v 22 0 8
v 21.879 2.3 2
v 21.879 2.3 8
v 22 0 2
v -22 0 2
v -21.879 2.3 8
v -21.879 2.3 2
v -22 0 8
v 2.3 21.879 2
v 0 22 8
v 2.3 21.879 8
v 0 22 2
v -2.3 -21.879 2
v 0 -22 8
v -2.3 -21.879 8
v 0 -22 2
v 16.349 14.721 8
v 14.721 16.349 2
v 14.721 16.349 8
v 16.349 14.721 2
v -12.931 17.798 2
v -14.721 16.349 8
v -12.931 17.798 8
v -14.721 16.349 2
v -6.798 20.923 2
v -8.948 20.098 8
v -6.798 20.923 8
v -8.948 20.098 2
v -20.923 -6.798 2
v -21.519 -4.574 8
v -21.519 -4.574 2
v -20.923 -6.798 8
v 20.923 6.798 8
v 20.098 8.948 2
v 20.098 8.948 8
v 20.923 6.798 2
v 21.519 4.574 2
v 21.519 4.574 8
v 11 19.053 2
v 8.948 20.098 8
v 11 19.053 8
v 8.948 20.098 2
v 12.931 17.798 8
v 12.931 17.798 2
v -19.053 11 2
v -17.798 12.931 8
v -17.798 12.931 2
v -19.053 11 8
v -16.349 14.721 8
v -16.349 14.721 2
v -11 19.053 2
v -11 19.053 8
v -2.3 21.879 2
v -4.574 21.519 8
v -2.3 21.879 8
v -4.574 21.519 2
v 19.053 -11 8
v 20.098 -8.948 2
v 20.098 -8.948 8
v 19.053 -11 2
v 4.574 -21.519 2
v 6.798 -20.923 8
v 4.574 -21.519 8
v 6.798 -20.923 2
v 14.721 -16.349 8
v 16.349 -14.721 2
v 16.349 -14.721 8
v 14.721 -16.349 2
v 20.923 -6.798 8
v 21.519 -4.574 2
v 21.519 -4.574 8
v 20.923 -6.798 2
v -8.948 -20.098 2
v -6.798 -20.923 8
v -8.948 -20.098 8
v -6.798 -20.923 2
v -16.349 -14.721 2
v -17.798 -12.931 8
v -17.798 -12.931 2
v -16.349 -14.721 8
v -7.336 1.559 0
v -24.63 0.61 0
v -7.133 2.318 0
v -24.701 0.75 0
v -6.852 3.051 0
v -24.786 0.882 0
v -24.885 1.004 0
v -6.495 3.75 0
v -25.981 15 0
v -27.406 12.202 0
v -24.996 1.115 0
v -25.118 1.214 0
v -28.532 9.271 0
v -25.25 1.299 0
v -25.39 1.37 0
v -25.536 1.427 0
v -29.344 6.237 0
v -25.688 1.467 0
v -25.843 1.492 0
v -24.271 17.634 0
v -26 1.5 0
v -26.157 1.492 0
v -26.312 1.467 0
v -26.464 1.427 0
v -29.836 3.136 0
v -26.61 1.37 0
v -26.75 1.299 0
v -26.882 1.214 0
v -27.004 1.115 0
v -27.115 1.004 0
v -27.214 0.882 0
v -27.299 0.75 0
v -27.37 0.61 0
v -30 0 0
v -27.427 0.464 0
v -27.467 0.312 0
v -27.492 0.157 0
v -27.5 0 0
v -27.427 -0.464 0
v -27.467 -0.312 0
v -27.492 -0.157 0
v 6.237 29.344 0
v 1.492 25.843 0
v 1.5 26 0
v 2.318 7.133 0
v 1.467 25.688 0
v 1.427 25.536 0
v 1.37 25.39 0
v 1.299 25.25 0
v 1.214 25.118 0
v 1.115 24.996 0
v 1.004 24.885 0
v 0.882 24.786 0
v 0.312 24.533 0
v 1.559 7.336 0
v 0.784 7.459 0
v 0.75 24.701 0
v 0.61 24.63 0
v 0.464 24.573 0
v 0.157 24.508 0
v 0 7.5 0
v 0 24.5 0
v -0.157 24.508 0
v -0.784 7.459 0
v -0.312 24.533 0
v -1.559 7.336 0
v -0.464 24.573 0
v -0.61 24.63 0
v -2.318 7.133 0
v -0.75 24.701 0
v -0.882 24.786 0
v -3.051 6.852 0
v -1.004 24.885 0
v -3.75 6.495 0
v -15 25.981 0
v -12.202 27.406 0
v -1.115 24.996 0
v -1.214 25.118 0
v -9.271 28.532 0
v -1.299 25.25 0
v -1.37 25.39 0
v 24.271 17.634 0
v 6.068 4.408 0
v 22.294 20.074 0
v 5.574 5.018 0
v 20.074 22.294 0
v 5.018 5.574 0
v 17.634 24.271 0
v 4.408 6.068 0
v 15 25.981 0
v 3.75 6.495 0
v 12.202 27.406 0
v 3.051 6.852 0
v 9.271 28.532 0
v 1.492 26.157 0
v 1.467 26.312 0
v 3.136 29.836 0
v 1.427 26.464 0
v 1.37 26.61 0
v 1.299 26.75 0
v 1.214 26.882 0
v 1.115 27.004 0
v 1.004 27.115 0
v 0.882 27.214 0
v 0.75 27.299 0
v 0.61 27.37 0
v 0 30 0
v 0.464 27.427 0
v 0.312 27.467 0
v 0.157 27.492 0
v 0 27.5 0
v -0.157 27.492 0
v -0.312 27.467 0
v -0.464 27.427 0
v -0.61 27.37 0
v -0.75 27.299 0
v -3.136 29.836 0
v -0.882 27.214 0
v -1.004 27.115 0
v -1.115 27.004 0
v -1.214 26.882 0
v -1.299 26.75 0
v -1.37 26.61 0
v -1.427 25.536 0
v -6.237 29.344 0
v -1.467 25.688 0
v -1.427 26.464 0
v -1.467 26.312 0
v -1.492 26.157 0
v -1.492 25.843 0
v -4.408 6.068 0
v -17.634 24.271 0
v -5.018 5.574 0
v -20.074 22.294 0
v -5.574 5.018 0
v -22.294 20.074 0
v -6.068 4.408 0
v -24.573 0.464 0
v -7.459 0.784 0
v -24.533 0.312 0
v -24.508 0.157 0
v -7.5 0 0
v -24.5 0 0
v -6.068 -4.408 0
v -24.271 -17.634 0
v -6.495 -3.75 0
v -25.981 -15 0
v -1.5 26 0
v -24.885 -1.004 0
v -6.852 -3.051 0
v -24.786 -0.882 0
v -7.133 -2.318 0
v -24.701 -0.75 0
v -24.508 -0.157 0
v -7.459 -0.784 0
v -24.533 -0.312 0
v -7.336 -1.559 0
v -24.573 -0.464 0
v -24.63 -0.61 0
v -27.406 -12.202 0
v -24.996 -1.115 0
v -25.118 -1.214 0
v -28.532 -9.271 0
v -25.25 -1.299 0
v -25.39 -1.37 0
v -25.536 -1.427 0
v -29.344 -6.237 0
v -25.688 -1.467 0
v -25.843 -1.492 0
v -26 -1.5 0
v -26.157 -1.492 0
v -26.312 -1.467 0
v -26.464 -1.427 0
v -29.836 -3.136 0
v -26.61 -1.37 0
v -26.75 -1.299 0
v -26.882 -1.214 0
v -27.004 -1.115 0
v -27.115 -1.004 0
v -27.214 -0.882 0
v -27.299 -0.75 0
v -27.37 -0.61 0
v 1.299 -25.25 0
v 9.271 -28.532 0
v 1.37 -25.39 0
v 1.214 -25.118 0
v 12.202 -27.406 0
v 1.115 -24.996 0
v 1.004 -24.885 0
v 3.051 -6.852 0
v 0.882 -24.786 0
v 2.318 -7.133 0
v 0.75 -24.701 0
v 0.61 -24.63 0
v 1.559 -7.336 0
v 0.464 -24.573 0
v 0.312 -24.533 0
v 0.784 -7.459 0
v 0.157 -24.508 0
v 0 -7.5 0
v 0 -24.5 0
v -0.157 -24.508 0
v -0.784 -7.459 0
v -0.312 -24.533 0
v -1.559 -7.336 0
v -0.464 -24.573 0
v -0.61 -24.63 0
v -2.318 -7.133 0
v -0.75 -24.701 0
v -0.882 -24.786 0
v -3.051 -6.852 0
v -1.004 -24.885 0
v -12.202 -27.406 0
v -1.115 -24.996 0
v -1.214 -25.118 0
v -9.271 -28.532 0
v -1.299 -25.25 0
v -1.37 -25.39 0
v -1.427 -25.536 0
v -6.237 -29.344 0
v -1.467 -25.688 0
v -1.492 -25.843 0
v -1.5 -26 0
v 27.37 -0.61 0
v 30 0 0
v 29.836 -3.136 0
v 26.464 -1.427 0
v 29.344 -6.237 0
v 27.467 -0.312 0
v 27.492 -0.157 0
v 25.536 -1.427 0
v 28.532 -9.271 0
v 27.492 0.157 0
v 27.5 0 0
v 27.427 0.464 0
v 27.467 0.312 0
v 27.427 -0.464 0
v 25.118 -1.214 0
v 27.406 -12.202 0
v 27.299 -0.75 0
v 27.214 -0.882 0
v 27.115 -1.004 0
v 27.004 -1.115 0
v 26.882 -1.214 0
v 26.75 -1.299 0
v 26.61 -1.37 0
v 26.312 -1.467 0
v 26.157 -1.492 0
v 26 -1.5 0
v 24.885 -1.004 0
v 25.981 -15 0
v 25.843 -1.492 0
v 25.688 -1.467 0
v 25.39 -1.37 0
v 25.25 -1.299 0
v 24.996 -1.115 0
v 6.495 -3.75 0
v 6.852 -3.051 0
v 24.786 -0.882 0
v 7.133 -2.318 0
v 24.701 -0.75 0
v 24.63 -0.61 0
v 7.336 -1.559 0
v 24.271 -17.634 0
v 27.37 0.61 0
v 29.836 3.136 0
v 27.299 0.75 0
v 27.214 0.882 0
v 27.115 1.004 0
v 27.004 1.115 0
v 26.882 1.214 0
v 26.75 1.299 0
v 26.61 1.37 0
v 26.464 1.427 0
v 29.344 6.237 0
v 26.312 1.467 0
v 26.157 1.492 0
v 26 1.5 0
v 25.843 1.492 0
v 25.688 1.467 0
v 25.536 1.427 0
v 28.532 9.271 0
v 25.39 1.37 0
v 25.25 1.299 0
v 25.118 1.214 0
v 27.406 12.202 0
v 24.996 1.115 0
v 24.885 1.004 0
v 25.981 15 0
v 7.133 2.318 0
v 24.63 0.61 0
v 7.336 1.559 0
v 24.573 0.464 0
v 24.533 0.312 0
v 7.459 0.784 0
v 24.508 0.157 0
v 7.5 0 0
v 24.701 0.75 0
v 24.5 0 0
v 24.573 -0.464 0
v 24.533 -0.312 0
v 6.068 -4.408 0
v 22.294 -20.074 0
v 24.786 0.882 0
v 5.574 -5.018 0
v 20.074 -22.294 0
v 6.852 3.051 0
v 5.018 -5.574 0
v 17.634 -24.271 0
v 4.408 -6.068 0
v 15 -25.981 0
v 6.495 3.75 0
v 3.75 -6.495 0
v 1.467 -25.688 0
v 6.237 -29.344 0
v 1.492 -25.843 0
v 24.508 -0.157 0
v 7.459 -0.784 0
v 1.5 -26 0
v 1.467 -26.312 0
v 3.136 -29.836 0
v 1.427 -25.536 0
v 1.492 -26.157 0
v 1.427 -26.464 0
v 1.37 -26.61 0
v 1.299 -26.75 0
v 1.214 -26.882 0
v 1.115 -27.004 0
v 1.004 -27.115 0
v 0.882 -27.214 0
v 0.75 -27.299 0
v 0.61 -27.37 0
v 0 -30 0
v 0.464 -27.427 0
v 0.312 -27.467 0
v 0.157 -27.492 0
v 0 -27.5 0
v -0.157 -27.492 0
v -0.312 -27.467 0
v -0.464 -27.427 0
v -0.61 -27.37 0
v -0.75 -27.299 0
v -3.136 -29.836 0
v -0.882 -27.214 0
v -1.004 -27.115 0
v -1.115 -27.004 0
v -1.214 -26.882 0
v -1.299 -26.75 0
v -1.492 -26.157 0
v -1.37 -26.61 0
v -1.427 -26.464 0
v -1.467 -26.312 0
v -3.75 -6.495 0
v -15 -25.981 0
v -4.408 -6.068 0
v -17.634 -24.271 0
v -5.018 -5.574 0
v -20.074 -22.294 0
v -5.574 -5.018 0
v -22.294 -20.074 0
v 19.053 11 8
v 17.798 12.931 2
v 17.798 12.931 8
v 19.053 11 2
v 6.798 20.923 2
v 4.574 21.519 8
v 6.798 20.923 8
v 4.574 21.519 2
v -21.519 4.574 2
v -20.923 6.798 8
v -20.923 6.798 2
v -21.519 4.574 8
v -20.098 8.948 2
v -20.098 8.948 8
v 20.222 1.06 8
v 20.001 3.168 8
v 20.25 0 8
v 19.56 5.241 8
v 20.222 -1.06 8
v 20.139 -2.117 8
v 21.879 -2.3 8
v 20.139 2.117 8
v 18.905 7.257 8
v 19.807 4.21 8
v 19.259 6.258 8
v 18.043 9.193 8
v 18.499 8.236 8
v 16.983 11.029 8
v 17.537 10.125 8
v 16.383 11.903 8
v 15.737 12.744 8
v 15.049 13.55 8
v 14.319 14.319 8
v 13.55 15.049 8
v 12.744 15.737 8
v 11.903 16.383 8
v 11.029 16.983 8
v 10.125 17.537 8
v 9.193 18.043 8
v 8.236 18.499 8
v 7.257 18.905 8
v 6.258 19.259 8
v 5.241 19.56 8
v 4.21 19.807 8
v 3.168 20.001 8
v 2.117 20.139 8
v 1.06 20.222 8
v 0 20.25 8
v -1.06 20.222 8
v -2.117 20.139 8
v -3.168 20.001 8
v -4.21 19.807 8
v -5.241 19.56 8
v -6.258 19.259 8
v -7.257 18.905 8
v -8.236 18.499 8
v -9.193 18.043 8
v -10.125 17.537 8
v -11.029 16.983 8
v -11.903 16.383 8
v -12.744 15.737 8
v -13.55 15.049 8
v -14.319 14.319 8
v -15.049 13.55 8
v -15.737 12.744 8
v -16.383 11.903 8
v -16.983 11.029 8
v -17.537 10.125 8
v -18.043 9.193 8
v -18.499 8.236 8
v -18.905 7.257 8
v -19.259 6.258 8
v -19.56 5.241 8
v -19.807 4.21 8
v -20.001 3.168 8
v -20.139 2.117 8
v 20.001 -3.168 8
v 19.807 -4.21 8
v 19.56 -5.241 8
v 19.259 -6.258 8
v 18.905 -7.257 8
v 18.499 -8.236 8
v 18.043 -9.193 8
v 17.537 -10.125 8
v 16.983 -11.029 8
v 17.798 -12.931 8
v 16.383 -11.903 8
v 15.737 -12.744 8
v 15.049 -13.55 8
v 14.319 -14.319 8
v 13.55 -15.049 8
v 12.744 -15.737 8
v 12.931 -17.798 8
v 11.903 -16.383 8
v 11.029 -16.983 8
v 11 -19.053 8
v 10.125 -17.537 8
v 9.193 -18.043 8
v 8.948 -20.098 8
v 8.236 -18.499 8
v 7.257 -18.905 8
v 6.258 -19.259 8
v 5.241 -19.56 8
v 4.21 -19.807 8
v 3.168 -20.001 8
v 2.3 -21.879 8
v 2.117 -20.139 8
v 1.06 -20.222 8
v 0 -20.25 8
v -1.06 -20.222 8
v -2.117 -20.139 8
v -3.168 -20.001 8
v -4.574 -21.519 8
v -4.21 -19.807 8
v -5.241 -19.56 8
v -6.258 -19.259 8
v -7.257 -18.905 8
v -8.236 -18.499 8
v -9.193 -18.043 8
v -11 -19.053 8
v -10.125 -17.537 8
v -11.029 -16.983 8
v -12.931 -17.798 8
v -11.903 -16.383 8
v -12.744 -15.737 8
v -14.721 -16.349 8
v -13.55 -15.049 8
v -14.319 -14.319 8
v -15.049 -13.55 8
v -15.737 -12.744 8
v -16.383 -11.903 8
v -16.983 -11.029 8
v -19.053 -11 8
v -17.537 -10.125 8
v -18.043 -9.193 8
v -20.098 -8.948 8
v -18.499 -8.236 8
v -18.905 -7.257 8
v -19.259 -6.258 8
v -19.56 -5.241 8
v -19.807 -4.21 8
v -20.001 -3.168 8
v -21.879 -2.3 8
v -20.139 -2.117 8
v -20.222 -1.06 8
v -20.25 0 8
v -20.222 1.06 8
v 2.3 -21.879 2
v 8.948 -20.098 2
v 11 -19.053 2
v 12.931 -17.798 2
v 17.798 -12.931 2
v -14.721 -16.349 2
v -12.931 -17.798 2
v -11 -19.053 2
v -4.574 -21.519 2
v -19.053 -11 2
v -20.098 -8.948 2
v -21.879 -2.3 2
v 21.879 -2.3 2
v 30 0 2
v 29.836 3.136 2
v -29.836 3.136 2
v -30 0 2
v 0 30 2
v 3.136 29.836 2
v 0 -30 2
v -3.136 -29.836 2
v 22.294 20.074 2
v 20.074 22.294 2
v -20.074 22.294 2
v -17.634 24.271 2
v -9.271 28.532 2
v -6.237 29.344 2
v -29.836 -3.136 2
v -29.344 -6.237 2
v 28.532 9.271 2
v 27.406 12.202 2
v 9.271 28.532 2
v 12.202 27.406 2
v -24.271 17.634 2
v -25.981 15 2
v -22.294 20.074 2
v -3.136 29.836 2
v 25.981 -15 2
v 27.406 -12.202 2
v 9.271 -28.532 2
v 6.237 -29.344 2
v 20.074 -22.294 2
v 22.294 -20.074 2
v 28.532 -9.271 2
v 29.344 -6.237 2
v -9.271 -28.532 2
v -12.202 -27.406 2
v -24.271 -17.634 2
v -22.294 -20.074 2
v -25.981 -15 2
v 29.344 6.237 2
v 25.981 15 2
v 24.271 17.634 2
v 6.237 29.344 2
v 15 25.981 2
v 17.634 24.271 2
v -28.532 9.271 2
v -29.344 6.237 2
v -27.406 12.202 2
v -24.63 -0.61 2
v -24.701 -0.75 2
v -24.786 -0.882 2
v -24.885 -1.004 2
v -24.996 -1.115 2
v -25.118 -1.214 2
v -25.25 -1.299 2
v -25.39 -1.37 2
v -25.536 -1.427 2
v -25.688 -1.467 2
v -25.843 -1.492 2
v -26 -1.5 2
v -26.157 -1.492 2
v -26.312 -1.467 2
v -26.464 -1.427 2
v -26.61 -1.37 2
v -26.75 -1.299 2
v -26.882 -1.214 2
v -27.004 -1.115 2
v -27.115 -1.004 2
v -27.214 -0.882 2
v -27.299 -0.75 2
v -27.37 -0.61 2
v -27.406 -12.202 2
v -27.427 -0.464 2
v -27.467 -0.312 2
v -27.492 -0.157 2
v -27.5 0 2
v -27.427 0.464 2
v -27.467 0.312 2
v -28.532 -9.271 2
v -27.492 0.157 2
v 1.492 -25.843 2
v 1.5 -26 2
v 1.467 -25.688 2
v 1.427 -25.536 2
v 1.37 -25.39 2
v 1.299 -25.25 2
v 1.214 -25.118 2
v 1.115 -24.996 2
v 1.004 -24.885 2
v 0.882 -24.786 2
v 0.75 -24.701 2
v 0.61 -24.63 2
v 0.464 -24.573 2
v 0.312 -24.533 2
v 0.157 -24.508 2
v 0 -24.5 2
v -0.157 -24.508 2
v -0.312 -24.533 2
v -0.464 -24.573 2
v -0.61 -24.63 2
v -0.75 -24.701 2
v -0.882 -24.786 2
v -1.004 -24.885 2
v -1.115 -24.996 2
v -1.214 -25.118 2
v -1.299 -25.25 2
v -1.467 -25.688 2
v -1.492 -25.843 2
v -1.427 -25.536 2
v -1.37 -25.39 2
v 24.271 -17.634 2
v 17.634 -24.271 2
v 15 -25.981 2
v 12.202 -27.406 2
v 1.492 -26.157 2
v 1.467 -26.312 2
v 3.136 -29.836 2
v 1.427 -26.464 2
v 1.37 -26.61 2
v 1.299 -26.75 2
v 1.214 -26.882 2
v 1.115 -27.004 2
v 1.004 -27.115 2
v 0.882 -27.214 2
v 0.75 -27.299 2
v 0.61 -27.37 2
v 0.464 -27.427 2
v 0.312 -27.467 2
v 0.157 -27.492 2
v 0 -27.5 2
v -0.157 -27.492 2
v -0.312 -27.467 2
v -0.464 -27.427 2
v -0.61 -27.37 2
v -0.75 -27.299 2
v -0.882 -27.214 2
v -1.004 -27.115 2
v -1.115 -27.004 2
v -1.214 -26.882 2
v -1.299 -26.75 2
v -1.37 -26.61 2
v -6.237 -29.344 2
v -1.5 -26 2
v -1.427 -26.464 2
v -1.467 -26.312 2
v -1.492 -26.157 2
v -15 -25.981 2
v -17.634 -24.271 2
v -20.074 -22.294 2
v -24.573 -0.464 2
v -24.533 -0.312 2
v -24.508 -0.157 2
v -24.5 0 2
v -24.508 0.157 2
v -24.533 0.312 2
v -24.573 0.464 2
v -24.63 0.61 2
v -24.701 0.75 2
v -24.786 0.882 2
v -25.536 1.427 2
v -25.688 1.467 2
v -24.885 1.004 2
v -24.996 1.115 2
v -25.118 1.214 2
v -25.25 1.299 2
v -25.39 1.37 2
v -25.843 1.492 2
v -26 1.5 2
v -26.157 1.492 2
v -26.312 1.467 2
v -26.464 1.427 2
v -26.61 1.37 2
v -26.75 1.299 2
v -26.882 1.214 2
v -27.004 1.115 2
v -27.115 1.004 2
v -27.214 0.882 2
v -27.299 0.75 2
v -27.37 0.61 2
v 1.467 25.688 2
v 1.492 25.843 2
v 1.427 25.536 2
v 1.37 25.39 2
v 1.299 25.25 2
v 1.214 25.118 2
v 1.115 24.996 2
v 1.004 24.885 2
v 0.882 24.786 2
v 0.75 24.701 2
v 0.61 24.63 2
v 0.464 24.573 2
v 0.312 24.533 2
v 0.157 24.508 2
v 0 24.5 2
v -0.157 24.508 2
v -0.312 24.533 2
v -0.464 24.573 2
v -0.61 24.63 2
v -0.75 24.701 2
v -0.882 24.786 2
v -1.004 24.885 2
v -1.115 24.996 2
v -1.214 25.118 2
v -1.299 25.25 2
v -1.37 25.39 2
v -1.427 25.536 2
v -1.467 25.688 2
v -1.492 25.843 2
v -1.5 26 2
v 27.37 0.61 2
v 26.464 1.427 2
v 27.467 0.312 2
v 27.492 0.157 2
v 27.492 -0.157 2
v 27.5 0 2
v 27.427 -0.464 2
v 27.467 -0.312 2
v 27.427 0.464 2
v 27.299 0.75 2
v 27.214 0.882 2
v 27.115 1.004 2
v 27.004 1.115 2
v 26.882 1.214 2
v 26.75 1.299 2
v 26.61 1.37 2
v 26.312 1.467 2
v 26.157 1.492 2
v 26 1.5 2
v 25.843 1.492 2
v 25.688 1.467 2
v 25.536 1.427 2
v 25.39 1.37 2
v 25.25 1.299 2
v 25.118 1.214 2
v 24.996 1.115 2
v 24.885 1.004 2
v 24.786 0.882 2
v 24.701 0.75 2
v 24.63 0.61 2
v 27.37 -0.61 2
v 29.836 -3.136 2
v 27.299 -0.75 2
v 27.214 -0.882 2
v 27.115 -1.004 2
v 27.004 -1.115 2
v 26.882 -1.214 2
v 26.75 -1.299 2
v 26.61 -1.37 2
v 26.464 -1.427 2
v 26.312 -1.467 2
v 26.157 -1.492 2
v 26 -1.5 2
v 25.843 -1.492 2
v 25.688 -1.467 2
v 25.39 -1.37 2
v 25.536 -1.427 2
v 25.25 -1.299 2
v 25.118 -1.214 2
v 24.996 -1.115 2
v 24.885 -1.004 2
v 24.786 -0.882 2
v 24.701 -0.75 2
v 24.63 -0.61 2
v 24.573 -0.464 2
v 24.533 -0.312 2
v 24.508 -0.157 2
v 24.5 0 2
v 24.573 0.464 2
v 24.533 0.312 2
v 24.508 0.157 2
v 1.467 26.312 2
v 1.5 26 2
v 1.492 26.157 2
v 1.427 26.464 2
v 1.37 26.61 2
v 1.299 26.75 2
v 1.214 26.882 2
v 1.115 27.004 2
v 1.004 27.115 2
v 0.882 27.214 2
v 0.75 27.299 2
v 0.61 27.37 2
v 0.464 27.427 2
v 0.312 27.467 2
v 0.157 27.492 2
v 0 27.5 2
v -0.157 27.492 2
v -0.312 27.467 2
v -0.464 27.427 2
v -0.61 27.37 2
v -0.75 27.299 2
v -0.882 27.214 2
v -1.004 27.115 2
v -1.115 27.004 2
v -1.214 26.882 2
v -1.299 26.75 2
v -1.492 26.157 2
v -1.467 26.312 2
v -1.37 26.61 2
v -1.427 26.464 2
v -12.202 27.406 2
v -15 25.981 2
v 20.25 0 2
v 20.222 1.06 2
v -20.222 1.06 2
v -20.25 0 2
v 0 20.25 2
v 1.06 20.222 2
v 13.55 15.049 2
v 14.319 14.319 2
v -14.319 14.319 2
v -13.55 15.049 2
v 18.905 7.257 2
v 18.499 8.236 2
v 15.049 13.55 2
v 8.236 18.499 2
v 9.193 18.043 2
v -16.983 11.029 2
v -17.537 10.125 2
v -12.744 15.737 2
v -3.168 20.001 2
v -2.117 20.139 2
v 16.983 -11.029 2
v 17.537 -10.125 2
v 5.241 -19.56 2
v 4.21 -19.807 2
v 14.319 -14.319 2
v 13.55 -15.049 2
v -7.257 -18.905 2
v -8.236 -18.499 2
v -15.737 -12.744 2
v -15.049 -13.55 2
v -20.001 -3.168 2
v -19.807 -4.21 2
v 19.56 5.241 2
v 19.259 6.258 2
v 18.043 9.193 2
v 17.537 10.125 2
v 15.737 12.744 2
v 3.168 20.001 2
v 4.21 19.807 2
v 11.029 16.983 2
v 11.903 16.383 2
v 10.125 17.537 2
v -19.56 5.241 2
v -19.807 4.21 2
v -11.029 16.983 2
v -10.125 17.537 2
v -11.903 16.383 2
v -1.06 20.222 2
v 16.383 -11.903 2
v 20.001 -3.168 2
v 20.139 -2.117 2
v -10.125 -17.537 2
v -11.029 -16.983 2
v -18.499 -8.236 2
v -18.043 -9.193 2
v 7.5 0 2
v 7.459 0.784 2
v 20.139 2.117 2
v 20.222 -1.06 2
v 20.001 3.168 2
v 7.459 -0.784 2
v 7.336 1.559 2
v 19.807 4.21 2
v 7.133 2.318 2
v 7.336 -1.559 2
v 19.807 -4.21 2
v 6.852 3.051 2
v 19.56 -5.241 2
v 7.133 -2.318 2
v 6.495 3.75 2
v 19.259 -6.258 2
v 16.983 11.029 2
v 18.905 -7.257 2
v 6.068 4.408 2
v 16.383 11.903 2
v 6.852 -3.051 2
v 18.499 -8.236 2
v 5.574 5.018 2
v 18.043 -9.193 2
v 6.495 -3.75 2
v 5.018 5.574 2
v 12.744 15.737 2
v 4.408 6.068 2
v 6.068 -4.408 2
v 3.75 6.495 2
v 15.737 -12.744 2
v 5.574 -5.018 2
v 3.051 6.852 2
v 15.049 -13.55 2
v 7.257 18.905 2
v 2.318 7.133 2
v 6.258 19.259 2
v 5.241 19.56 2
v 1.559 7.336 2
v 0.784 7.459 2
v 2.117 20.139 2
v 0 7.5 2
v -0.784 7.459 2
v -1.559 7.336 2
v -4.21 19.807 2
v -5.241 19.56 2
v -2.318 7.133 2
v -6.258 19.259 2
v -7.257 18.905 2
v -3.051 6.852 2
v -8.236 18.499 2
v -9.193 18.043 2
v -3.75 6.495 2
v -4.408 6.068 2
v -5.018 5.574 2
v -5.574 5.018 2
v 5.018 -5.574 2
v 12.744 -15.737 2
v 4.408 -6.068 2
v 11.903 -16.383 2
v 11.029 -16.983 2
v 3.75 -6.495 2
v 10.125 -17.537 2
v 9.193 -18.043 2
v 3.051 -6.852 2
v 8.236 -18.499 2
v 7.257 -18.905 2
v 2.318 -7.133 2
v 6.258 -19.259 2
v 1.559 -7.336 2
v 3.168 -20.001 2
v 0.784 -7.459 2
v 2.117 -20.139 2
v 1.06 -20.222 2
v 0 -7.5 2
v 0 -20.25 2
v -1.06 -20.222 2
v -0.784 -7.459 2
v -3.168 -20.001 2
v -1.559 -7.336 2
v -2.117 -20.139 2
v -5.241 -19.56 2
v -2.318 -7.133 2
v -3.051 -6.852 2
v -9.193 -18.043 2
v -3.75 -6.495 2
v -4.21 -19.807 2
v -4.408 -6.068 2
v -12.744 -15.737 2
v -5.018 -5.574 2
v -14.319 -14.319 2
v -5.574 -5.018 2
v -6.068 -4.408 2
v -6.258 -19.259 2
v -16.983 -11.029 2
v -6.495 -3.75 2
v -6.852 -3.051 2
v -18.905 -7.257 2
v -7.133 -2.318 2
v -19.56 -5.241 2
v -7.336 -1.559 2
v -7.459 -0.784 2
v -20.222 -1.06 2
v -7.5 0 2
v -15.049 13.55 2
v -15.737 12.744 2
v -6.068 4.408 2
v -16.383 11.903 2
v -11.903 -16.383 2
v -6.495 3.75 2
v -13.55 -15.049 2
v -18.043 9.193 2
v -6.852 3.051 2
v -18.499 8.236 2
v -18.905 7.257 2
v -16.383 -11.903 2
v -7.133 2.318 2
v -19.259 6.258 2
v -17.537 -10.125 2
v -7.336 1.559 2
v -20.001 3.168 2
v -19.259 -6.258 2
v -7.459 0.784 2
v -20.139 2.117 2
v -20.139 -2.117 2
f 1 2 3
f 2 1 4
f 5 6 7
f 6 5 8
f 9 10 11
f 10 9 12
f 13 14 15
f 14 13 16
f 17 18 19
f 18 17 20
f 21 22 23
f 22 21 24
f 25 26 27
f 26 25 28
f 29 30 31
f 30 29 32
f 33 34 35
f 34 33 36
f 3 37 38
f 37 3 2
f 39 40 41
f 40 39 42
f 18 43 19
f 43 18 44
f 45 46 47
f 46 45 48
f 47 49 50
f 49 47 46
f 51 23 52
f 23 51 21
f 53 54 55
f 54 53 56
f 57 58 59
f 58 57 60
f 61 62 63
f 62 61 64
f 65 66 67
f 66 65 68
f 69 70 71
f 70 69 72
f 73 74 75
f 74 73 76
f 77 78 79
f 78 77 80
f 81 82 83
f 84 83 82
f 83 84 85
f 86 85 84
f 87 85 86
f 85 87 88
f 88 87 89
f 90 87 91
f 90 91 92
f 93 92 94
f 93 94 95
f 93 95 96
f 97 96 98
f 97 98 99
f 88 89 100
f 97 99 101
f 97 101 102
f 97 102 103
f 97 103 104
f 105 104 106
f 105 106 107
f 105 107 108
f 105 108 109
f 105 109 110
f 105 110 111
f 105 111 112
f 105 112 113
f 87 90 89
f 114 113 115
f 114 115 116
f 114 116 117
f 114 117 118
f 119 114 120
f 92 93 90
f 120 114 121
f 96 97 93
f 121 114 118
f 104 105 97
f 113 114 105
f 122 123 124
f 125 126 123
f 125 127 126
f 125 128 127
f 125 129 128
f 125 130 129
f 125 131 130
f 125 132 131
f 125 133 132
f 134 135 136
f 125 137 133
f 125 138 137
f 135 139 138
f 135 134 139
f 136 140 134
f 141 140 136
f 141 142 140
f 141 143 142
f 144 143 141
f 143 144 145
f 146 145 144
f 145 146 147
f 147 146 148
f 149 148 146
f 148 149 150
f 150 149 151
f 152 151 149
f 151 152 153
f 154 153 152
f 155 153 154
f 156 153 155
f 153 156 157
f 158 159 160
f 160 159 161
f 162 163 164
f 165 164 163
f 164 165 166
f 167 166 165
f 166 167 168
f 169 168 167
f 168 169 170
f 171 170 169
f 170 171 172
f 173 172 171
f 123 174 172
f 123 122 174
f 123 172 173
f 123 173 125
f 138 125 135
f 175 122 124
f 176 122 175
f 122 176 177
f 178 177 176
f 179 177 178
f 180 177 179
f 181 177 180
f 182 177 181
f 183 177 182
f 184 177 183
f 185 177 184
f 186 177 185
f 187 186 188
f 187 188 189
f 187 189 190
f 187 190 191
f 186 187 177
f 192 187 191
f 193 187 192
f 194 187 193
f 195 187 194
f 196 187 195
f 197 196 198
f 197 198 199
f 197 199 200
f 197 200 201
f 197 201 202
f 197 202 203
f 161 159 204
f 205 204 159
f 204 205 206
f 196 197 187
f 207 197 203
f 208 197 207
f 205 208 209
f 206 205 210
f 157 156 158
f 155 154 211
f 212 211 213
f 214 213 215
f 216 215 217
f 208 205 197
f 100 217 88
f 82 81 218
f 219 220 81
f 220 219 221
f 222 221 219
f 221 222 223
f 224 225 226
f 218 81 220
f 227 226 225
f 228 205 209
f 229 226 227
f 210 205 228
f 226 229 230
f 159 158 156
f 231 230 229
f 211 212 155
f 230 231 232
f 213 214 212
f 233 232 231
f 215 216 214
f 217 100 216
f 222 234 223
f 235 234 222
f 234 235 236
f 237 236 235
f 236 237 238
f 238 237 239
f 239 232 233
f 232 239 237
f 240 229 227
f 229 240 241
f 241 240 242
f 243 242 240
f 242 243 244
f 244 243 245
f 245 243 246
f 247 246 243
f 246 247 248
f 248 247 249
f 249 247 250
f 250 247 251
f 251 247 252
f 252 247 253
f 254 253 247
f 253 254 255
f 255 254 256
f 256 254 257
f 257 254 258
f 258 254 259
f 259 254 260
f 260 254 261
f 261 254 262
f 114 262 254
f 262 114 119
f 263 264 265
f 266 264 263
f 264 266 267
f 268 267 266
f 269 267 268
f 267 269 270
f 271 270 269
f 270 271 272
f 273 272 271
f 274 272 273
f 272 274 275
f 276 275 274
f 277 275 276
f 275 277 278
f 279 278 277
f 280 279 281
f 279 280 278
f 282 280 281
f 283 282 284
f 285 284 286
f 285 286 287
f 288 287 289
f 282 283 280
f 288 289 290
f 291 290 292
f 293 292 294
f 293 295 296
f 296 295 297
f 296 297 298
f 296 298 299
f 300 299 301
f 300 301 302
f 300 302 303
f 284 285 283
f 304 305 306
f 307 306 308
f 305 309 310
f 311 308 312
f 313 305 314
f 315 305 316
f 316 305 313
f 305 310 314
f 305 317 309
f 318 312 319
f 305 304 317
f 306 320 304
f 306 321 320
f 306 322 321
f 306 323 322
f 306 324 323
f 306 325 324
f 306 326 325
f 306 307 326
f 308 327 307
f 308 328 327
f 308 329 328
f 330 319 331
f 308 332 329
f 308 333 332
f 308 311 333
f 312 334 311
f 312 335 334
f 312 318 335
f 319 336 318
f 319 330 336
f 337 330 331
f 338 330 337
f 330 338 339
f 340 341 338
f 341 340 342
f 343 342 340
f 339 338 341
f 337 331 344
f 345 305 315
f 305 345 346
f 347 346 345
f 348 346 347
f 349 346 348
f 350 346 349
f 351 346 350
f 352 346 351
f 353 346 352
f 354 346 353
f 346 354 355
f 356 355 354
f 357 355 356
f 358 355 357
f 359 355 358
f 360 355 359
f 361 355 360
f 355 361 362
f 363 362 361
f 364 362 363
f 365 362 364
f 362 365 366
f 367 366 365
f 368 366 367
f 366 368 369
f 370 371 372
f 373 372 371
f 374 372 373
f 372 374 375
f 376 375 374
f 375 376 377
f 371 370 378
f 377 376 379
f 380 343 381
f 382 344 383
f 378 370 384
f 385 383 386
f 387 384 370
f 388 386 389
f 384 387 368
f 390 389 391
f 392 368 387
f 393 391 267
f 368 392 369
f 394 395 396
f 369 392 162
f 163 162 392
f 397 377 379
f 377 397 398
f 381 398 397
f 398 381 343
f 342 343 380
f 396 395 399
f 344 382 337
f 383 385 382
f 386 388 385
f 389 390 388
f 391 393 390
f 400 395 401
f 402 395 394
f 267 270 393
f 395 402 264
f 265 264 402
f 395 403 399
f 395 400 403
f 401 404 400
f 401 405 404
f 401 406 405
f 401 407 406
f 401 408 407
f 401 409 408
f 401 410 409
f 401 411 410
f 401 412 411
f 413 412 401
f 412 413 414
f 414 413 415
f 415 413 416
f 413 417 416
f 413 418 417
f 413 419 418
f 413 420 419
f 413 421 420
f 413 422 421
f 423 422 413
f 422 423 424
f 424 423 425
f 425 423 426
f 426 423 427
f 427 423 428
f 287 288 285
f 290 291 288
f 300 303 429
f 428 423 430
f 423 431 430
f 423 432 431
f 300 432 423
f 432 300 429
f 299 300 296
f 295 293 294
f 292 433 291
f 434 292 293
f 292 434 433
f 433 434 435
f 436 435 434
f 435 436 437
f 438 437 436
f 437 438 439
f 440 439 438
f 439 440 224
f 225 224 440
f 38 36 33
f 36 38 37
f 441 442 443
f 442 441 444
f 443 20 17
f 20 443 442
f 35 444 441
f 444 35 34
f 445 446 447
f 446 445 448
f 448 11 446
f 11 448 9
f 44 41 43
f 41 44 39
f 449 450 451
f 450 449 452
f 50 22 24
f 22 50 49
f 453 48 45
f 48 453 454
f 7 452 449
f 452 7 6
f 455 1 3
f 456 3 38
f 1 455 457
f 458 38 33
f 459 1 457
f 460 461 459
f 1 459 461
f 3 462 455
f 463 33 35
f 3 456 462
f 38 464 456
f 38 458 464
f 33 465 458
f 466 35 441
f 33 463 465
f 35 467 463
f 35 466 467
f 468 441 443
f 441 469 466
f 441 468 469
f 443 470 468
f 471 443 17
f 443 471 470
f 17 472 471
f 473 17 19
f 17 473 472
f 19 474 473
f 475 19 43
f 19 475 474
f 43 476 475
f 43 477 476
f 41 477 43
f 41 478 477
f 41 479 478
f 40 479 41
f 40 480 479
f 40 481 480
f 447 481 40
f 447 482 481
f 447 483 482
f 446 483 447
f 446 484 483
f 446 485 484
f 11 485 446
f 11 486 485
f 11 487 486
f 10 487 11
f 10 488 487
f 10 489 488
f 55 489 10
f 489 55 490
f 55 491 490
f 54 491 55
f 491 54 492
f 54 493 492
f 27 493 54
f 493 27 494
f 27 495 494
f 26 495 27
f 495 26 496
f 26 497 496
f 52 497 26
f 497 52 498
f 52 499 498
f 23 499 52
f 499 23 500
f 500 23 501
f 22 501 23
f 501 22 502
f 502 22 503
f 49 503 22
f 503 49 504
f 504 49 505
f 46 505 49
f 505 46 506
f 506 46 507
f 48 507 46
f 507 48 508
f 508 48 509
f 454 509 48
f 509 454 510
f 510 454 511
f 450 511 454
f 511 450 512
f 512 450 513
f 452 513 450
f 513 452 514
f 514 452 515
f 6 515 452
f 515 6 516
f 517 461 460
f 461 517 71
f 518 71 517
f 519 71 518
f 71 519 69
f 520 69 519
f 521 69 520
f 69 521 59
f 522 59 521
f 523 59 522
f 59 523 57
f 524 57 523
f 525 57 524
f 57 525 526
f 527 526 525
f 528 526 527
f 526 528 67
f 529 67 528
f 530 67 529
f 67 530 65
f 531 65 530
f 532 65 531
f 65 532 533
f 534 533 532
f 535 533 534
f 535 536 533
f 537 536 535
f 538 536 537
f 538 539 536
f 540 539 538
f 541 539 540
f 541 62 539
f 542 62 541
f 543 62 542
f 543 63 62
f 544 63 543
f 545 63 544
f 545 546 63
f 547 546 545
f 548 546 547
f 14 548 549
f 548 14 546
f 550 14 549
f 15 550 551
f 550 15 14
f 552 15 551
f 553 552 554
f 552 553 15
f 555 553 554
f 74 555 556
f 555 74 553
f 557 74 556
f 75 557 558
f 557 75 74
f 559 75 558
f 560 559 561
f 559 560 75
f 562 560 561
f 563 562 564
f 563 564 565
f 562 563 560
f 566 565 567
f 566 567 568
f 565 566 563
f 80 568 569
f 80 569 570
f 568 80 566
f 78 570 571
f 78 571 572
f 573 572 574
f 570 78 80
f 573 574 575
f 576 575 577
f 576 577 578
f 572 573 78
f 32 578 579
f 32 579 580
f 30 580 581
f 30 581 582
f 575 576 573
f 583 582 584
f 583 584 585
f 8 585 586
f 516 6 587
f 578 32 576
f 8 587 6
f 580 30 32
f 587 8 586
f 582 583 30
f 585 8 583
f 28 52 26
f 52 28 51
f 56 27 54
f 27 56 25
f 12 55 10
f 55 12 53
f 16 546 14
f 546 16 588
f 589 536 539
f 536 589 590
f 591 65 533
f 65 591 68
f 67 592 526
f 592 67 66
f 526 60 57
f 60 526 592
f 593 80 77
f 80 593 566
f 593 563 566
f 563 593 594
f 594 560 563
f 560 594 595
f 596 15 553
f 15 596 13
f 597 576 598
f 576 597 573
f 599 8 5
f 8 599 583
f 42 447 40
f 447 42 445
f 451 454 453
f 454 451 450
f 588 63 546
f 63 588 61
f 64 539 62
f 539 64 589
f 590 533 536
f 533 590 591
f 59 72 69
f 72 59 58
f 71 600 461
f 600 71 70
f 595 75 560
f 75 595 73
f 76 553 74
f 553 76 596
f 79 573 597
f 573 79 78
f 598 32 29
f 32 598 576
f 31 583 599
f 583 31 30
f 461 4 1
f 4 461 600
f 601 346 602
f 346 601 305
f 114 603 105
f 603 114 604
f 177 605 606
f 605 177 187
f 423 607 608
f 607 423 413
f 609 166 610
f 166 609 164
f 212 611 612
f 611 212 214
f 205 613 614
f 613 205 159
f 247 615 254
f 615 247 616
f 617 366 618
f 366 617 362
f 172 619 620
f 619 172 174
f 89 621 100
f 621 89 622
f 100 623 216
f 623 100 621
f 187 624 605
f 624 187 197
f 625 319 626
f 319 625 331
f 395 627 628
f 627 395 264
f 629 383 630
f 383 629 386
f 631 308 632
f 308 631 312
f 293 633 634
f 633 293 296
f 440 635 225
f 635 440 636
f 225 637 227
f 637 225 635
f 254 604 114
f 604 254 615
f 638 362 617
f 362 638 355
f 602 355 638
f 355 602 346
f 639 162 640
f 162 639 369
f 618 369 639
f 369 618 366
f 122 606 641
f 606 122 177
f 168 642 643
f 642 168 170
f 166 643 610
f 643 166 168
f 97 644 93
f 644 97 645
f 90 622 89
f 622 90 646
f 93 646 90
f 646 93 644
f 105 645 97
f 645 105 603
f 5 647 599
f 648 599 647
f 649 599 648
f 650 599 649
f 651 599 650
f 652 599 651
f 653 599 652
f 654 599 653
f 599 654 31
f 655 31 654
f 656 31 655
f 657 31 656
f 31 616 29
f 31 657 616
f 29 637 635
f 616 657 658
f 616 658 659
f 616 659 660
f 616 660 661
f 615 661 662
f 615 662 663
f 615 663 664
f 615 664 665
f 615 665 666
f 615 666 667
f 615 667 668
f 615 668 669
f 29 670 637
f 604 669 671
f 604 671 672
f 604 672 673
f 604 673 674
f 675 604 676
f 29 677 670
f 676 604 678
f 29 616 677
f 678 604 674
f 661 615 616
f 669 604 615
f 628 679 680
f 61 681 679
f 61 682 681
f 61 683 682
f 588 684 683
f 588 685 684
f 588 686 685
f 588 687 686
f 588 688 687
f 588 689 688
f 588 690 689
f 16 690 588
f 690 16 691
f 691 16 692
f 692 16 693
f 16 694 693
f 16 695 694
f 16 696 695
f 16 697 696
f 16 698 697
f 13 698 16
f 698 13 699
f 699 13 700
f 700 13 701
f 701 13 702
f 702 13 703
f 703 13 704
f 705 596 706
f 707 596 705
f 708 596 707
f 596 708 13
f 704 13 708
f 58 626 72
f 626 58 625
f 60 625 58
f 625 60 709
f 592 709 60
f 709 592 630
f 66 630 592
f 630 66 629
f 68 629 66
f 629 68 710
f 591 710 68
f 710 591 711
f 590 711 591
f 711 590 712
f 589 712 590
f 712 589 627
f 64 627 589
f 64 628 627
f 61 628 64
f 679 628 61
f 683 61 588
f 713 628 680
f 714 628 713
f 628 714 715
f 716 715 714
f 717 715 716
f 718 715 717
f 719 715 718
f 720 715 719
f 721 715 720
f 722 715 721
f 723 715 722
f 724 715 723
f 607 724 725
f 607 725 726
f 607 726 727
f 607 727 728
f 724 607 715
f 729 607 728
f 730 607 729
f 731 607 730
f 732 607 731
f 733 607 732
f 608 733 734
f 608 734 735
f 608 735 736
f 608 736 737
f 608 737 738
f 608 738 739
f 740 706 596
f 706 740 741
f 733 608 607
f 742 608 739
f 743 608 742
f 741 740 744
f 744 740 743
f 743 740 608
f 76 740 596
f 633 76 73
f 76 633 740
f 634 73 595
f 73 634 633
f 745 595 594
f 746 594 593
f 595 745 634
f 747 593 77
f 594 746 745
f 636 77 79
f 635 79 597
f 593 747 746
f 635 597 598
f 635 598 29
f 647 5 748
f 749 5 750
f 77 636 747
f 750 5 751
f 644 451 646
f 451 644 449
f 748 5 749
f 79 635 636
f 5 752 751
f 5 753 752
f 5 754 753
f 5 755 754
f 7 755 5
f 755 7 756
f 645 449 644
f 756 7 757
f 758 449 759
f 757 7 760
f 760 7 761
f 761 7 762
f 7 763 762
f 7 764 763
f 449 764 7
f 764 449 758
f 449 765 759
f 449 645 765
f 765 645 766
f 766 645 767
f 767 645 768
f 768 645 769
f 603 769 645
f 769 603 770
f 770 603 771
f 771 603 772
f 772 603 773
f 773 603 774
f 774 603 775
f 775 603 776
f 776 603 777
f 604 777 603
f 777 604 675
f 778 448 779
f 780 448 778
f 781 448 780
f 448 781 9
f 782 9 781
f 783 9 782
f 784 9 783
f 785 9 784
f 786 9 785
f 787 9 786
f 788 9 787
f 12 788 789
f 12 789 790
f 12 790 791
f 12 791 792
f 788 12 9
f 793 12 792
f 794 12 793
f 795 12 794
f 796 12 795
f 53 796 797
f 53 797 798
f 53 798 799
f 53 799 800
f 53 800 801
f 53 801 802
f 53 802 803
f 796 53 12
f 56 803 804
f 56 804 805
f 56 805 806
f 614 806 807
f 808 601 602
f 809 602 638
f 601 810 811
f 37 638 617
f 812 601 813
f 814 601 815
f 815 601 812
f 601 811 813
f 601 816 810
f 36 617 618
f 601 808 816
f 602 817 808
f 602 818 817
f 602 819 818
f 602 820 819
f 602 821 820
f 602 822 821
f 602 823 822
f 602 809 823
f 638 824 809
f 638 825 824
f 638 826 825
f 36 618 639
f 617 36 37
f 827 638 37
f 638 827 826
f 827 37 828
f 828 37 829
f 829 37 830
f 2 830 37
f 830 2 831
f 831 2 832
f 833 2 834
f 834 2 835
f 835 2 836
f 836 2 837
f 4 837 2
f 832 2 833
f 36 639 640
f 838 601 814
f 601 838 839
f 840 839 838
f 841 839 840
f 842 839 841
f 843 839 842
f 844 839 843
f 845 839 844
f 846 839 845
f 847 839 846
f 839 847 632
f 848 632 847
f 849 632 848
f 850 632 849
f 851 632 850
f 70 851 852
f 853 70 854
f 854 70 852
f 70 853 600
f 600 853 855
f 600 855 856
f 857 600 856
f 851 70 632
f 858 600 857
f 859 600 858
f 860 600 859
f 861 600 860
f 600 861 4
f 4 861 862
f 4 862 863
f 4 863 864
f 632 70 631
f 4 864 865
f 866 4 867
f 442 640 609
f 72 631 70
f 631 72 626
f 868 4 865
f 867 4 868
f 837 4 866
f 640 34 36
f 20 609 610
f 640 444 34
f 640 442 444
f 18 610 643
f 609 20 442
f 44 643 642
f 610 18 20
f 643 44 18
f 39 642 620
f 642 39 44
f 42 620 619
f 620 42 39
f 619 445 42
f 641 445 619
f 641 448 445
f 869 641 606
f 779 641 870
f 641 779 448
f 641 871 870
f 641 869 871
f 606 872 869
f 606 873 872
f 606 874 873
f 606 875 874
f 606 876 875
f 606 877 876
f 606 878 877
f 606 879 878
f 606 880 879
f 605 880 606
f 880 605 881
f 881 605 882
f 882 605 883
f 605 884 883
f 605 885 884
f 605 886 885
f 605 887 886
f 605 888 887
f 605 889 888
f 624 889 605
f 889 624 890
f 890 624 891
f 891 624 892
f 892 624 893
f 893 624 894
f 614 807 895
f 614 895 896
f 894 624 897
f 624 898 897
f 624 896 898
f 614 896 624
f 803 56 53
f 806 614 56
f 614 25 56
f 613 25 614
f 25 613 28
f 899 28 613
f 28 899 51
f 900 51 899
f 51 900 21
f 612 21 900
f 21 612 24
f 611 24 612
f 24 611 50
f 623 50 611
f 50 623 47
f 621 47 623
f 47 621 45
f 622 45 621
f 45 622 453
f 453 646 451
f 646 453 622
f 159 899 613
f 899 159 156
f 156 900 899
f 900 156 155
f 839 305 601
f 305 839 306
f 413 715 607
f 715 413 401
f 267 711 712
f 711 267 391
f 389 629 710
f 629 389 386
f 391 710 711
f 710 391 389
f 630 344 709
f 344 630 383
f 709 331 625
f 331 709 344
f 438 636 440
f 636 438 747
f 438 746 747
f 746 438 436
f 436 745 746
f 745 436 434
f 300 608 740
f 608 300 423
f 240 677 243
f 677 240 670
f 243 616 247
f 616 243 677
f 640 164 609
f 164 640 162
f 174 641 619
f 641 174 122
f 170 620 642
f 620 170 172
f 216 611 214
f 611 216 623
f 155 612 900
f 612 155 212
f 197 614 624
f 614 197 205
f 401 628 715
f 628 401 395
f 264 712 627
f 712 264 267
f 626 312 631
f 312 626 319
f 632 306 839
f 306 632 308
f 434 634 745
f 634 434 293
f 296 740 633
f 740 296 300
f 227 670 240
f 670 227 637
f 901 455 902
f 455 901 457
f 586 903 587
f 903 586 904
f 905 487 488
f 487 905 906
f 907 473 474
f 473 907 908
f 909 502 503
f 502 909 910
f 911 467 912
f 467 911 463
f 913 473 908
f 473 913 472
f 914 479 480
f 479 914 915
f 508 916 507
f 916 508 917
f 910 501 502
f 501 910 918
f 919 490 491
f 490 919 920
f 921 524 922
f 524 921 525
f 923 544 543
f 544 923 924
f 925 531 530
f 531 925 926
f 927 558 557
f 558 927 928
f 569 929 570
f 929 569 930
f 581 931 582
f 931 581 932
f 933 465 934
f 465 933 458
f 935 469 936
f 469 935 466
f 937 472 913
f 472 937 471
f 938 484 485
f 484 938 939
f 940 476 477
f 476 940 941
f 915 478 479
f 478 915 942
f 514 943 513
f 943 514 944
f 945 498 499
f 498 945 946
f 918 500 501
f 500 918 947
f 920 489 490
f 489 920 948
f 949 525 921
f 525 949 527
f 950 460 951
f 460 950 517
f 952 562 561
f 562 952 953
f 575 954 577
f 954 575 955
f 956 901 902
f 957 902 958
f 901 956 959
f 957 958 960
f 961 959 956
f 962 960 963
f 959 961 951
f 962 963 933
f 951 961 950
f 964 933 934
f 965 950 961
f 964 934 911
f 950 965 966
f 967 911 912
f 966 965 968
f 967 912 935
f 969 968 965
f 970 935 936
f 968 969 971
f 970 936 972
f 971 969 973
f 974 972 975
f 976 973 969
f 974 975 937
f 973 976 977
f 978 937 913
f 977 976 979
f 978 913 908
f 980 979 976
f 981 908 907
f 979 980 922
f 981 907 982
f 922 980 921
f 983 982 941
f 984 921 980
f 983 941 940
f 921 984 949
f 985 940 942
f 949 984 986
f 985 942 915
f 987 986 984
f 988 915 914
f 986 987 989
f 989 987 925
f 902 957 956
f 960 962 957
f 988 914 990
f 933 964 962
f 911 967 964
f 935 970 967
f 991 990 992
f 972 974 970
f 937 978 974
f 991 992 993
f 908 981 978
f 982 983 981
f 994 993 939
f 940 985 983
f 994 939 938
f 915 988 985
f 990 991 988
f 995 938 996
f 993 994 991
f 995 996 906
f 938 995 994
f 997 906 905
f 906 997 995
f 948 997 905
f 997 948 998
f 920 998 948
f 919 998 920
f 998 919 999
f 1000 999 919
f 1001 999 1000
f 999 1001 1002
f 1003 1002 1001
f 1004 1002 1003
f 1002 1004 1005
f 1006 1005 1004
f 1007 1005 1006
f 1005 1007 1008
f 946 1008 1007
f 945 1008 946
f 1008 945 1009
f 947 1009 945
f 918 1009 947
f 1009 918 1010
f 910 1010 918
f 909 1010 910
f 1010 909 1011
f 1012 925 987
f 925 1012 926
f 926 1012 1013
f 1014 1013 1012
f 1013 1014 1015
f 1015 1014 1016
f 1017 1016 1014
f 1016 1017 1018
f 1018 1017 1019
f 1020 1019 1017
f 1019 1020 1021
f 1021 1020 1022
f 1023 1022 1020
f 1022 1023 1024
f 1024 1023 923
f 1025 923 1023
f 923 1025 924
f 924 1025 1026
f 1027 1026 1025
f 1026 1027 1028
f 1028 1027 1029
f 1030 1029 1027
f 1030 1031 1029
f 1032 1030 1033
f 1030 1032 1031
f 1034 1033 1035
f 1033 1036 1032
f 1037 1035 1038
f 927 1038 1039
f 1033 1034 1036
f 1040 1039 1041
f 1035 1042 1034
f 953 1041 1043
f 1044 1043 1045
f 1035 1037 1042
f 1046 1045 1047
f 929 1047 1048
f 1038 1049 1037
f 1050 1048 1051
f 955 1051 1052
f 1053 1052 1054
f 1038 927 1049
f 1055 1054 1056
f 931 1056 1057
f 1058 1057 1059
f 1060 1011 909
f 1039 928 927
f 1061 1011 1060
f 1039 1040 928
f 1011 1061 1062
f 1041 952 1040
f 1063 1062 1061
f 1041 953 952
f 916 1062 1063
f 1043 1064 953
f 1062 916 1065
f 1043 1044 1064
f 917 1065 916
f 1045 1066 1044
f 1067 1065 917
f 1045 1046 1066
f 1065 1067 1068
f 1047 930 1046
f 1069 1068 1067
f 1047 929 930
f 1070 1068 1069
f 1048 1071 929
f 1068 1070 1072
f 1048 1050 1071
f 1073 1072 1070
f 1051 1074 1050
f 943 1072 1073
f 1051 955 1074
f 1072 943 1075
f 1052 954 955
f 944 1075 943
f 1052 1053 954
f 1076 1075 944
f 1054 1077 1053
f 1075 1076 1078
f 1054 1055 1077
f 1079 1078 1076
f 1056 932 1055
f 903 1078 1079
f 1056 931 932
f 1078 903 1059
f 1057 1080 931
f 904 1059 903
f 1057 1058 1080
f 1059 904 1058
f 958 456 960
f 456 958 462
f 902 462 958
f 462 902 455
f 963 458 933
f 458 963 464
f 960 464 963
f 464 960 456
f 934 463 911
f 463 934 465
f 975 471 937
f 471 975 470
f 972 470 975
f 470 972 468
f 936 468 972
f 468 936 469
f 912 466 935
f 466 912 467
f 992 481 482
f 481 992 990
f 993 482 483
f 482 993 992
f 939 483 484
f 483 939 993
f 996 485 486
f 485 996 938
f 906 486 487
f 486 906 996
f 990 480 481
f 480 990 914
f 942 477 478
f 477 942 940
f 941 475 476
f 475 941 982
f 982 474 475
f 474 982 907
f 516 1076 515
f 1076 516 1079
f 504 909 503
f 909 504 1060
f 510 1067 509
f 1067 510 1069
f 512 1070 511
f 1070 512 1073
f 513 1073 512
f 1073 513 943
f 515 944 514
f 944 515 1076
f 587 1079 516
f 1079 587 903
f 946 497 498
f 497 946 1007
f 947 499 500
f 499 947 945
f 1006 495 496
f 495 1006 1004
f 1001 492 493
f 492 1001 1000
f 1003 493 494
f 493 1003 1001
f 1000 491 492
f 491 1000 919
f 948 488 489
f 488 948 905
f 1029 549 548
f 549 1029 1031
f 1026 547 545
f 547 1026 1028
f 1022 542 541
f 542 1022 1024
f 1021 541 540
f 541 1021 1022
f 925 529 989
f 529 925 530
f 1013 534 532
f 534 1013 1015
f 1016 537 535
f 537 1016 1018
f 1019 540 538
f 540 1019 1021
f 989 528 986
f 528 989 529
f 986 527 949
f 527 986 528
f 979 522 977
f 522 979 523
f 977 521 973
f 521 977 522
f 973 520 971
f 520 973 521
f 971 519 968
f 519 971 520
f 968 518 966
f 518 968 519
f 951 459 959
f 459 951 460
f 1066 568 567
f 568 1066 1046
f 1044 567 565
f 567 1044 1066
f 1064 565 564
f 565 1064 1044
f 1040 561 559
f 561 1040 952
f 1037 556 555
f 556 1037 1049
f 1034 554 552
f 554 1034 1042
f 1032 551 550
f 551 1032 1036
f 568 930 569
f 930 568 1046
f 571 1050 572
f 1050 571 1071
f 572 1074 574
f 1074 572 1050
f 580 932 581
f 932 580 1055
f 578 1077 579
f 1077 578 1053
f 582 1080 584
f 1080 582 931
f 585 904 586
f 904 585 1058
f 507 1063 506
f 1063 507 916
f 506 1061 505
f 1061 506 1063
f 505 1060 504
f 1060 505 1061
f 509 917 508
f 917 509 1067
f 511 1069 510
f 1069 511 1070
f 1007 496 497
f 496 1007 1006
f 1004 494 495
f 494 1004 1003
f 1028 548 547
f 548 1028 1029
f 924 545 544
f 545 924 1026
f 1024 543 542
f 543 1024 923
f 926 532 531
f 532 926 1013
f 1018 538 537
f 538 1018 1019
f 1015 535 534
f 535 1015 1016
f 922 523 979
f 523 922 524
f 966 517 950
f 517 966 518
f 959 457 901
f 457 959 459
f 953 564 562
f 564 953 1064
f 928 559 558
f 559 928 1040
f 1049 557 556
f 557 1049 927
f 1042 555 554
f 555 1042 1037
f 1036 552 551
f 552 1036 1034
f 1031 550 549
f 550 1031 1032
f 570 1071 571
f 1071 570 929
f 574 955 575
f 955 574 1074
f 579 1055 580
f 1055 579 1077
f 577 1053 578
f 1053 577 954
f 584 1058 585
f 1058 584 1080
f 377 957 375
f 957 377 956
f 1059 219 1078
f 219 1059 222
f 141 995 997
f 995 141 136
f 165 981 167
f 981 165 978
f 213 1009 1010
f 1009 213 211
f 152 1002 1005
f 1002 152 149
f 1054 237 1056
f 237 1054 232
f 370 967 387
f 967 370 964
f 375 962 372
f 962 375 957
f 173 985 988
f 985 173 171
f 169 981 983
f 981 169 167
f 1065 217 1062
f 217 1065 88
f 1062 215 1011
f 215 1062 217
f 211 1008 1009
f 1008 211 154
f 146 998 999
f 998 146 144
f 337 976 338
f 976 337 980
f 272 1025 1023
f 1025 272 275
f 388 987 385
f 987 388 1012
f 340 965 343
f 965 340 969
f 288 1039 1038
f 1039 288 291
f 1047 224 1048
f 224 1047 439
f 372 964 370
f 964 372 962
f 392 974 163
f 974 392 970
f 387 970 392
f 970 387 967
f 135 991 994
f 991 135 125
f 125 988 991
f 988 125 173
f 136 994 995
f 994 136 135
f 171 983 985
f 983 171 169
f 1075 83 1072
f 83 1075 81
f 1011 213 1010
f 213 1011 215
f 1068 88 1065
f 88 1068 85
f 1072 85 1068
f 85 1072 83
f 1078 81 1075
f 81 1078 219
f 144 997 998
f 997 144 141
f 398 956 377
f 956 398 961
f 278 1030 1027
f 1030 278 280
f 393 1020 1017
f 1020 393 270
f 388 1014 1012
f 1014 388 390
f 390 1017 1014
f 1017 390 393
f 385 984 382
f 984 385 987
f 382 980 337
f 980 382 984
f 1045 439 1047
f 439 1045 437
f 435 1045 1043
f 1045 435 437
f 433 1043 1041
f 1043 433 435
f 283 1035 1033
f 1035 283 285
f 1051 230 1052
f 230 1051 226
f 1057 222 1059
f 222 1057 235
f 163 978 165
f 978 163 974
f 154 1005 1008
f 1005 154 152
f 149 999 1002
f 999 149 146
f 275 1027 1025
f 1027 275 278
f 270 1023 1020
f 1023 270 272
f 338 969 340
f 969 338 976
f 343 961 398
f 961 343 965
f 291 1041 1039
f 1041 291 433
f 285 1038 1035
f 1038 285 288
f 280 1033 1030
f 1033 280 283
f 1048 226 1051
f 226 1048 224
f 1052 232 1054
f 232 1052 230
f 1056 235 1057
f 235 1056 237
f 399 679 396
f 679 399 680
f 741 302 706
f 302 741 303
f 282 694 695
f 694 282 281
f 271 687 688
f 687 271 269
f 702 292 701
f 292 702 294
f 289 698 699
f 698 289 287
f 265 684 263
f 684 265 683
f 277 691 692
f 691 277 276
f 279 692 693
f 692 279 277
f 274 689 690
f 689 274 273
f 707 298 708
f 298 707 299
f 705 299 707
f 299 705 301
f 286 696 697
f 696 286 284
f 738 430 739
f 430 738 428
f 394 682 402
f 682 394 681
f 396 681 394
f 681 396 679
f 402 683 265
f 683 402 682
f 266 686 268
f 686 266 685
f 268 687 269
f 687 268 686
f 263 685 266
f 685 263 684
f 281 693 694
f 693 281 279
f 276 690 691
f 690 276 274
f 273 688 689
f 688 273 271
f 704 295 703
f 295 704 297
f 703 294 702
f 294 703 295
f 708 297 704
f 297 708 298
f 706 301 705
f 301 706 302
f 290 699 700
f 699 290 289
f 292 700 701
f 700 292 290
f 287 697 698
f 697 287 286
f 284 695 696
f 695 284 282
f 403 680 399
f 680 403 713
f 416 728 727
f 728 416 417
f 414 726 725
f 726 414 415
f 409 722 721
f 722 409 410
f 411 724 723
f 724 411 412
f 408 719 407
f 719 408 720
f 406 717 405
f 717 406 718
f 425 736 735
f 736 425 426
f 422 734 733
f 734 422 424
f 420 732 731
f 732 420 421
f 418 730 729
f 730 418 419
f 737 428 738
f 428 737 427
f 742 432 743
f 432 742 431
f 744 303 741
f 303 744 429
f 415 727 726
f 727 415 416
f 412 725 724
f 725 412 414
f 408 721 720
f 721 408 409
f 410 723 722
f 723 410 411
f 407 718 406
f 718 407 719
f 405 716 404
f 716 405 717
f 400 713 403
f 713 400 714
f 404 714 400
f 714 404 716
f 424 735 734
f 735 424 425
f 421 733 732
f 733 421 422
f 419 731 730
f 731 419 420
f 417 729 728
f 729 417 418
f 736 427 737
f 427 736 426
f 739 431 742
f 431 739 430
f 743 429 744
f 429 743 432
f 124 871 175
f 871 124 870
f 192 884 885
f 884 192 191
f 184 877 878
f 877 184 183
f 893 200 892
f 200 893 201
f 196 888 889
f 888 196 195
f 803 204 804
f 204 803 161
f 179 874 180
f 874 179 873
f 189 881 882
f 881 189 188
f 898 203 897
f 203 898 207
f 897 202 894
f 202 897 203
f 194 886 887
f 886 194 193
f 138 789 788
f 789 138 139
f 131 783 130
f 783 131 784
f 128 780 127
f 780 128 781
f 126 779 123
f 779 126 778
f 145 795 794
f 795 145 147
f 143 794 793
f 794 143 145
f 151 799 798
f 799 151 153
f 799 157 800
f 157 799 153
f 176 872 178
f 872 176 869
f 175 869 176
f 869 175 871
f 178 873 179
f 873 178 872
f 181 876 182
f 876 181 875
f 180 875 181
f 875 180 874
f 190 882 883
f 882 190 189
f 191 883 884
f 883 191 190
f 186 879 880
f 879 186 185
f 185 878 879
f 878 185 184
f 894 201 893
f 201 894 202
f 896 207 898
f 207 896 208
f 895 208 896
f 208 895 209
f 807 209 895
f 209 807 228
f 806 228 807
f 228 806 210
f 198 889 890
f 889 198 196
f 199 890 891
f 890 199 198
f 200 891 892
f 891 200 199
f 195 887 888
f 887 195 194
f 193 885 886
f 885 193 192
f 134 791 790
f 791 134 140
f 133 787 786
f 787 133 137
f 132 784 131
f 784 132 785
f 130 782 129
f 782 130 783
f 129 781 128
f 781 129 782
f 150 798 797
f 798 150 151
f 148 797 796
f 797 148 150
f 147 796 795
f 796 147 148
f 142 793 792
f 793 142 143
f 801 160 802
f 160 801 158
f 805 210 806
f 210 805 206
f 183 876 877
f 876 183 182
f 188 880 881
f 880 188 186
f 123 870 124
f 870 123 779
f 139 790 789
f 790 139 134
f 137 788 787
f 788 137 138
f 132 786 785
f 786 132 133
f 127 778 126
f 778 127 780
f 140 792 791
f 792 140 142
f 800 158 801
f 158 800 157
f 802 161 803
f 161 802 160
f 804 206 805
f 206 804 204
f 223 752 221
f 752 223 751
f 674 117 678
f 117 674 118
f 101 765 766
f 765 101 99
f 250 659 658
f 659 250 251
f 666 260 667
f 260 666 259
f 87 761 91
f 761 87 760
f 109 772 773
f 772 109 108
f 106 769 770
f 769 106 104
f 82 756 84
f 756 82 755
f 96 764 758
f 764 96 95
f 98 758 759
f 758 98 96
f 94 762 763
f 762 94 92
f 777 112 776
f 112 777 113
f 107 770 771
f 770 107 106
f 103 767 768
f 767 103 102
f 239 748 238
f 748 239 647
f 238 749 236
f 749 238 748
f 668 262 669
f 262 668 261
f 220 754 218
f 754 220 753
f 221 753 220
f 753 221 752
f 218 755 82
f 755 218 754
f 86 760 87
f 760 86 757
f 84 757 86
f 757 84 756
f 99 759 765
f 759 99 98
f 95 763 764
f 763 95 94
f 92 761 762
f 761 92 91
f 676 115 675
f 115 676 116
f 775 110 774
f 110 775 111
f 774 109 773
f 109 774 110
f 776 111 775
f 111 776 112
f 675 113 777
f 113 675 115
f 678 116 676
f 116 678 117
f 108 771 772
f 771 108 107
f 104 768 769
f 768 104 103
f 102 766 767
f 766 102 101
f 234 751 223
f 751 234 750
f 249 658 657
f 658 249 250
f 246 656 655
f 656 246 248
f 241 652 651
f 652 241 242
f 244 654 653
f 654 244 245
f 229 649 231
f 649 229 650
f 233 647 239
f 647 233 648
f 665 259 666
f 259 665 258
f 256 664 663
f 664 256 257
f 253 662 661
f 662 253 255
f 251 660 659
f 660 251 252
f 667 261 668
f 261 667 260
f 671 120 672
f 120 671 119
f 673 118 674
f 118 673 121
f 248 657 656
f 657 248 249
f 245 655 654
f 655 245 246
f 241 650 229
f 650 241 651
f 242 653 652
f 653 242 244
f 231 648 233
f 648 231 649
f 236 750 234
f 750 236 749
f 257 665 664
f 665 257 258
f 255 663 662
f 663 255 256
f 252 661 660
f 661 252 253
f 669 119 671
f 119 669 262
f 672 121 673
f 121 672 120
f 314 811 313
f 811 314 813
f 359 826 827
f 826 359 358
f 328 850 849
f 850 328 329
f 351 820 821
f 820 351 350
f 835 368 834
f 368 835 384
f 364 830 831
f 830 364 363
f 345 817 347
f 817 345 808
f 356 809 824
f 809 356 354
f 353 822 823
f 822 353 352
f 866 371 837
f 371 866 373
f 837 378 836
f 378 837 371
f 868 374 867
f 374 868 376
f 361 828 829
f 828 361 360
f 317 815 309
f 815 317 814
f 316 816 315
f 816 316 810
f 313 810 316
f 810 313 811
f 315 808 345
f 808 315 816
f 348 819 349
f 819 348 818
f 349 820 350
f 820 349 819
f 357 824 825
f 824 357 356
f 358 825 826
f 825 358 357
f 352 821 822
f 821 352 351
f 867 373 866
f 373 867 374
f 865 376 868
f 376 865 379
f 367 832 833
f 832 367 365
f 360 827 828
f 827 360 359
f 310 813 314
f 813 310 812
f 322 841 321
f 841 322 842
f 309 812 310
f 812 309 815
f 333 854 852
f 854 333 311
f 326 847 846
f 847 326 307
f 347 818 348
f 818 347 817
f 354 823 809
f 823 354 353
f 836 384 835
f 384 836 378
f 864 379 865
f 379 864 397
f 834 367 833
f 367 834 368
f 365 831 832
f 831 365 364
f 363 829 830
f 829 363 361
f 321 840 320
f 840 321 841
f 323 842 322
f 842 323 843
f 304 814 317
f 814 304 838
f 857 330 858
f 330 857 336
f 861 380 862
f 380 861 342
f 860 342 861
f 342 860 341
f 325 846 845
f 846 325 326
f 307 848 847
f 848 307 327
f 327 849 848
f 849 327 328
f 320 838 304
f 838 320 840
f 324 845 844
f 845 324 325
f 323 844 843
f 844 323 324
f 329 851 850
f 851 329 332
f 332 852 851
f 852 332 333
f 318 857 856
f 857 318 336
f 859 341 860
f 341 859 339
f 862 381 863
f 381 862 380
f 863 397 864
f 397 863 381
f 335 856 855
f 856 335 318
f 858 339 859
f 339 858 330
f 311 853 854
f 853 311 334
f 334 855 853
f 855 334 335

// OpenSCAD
include <BOSL/constants.scad>
use <BOSL/shapes.scad>
use <BOSL/transforms.scad>
use <BOSL/masks.scad>

fileVersion = "1D";
  
$fn=60; //circle smoothness

main();
  
module main(){
  difference(){
    union(){
     color("lime") cylinder(h=8, d=44); //outer shell
     color("lime") cylinder(h=2, d=60); // mounting shell
    }
    color("green") up(2) cylinder(h=10, d=40.5, $fn=120); //cutout for trackpoint
    color("pink") cylinder(h=10, d=15); // finger hole for release
        color("orange") forward(26) cylinder(h=99, d=3); // screw hole
    color("orange") back(26) cylinder(h=99, d=3); // screw hole
    color("orange") left(26) cylinder(h=99, d=3); // screw hole
    color("orange") right(26) cylinder(h=99, d=3); // screw hole
  }
}  
